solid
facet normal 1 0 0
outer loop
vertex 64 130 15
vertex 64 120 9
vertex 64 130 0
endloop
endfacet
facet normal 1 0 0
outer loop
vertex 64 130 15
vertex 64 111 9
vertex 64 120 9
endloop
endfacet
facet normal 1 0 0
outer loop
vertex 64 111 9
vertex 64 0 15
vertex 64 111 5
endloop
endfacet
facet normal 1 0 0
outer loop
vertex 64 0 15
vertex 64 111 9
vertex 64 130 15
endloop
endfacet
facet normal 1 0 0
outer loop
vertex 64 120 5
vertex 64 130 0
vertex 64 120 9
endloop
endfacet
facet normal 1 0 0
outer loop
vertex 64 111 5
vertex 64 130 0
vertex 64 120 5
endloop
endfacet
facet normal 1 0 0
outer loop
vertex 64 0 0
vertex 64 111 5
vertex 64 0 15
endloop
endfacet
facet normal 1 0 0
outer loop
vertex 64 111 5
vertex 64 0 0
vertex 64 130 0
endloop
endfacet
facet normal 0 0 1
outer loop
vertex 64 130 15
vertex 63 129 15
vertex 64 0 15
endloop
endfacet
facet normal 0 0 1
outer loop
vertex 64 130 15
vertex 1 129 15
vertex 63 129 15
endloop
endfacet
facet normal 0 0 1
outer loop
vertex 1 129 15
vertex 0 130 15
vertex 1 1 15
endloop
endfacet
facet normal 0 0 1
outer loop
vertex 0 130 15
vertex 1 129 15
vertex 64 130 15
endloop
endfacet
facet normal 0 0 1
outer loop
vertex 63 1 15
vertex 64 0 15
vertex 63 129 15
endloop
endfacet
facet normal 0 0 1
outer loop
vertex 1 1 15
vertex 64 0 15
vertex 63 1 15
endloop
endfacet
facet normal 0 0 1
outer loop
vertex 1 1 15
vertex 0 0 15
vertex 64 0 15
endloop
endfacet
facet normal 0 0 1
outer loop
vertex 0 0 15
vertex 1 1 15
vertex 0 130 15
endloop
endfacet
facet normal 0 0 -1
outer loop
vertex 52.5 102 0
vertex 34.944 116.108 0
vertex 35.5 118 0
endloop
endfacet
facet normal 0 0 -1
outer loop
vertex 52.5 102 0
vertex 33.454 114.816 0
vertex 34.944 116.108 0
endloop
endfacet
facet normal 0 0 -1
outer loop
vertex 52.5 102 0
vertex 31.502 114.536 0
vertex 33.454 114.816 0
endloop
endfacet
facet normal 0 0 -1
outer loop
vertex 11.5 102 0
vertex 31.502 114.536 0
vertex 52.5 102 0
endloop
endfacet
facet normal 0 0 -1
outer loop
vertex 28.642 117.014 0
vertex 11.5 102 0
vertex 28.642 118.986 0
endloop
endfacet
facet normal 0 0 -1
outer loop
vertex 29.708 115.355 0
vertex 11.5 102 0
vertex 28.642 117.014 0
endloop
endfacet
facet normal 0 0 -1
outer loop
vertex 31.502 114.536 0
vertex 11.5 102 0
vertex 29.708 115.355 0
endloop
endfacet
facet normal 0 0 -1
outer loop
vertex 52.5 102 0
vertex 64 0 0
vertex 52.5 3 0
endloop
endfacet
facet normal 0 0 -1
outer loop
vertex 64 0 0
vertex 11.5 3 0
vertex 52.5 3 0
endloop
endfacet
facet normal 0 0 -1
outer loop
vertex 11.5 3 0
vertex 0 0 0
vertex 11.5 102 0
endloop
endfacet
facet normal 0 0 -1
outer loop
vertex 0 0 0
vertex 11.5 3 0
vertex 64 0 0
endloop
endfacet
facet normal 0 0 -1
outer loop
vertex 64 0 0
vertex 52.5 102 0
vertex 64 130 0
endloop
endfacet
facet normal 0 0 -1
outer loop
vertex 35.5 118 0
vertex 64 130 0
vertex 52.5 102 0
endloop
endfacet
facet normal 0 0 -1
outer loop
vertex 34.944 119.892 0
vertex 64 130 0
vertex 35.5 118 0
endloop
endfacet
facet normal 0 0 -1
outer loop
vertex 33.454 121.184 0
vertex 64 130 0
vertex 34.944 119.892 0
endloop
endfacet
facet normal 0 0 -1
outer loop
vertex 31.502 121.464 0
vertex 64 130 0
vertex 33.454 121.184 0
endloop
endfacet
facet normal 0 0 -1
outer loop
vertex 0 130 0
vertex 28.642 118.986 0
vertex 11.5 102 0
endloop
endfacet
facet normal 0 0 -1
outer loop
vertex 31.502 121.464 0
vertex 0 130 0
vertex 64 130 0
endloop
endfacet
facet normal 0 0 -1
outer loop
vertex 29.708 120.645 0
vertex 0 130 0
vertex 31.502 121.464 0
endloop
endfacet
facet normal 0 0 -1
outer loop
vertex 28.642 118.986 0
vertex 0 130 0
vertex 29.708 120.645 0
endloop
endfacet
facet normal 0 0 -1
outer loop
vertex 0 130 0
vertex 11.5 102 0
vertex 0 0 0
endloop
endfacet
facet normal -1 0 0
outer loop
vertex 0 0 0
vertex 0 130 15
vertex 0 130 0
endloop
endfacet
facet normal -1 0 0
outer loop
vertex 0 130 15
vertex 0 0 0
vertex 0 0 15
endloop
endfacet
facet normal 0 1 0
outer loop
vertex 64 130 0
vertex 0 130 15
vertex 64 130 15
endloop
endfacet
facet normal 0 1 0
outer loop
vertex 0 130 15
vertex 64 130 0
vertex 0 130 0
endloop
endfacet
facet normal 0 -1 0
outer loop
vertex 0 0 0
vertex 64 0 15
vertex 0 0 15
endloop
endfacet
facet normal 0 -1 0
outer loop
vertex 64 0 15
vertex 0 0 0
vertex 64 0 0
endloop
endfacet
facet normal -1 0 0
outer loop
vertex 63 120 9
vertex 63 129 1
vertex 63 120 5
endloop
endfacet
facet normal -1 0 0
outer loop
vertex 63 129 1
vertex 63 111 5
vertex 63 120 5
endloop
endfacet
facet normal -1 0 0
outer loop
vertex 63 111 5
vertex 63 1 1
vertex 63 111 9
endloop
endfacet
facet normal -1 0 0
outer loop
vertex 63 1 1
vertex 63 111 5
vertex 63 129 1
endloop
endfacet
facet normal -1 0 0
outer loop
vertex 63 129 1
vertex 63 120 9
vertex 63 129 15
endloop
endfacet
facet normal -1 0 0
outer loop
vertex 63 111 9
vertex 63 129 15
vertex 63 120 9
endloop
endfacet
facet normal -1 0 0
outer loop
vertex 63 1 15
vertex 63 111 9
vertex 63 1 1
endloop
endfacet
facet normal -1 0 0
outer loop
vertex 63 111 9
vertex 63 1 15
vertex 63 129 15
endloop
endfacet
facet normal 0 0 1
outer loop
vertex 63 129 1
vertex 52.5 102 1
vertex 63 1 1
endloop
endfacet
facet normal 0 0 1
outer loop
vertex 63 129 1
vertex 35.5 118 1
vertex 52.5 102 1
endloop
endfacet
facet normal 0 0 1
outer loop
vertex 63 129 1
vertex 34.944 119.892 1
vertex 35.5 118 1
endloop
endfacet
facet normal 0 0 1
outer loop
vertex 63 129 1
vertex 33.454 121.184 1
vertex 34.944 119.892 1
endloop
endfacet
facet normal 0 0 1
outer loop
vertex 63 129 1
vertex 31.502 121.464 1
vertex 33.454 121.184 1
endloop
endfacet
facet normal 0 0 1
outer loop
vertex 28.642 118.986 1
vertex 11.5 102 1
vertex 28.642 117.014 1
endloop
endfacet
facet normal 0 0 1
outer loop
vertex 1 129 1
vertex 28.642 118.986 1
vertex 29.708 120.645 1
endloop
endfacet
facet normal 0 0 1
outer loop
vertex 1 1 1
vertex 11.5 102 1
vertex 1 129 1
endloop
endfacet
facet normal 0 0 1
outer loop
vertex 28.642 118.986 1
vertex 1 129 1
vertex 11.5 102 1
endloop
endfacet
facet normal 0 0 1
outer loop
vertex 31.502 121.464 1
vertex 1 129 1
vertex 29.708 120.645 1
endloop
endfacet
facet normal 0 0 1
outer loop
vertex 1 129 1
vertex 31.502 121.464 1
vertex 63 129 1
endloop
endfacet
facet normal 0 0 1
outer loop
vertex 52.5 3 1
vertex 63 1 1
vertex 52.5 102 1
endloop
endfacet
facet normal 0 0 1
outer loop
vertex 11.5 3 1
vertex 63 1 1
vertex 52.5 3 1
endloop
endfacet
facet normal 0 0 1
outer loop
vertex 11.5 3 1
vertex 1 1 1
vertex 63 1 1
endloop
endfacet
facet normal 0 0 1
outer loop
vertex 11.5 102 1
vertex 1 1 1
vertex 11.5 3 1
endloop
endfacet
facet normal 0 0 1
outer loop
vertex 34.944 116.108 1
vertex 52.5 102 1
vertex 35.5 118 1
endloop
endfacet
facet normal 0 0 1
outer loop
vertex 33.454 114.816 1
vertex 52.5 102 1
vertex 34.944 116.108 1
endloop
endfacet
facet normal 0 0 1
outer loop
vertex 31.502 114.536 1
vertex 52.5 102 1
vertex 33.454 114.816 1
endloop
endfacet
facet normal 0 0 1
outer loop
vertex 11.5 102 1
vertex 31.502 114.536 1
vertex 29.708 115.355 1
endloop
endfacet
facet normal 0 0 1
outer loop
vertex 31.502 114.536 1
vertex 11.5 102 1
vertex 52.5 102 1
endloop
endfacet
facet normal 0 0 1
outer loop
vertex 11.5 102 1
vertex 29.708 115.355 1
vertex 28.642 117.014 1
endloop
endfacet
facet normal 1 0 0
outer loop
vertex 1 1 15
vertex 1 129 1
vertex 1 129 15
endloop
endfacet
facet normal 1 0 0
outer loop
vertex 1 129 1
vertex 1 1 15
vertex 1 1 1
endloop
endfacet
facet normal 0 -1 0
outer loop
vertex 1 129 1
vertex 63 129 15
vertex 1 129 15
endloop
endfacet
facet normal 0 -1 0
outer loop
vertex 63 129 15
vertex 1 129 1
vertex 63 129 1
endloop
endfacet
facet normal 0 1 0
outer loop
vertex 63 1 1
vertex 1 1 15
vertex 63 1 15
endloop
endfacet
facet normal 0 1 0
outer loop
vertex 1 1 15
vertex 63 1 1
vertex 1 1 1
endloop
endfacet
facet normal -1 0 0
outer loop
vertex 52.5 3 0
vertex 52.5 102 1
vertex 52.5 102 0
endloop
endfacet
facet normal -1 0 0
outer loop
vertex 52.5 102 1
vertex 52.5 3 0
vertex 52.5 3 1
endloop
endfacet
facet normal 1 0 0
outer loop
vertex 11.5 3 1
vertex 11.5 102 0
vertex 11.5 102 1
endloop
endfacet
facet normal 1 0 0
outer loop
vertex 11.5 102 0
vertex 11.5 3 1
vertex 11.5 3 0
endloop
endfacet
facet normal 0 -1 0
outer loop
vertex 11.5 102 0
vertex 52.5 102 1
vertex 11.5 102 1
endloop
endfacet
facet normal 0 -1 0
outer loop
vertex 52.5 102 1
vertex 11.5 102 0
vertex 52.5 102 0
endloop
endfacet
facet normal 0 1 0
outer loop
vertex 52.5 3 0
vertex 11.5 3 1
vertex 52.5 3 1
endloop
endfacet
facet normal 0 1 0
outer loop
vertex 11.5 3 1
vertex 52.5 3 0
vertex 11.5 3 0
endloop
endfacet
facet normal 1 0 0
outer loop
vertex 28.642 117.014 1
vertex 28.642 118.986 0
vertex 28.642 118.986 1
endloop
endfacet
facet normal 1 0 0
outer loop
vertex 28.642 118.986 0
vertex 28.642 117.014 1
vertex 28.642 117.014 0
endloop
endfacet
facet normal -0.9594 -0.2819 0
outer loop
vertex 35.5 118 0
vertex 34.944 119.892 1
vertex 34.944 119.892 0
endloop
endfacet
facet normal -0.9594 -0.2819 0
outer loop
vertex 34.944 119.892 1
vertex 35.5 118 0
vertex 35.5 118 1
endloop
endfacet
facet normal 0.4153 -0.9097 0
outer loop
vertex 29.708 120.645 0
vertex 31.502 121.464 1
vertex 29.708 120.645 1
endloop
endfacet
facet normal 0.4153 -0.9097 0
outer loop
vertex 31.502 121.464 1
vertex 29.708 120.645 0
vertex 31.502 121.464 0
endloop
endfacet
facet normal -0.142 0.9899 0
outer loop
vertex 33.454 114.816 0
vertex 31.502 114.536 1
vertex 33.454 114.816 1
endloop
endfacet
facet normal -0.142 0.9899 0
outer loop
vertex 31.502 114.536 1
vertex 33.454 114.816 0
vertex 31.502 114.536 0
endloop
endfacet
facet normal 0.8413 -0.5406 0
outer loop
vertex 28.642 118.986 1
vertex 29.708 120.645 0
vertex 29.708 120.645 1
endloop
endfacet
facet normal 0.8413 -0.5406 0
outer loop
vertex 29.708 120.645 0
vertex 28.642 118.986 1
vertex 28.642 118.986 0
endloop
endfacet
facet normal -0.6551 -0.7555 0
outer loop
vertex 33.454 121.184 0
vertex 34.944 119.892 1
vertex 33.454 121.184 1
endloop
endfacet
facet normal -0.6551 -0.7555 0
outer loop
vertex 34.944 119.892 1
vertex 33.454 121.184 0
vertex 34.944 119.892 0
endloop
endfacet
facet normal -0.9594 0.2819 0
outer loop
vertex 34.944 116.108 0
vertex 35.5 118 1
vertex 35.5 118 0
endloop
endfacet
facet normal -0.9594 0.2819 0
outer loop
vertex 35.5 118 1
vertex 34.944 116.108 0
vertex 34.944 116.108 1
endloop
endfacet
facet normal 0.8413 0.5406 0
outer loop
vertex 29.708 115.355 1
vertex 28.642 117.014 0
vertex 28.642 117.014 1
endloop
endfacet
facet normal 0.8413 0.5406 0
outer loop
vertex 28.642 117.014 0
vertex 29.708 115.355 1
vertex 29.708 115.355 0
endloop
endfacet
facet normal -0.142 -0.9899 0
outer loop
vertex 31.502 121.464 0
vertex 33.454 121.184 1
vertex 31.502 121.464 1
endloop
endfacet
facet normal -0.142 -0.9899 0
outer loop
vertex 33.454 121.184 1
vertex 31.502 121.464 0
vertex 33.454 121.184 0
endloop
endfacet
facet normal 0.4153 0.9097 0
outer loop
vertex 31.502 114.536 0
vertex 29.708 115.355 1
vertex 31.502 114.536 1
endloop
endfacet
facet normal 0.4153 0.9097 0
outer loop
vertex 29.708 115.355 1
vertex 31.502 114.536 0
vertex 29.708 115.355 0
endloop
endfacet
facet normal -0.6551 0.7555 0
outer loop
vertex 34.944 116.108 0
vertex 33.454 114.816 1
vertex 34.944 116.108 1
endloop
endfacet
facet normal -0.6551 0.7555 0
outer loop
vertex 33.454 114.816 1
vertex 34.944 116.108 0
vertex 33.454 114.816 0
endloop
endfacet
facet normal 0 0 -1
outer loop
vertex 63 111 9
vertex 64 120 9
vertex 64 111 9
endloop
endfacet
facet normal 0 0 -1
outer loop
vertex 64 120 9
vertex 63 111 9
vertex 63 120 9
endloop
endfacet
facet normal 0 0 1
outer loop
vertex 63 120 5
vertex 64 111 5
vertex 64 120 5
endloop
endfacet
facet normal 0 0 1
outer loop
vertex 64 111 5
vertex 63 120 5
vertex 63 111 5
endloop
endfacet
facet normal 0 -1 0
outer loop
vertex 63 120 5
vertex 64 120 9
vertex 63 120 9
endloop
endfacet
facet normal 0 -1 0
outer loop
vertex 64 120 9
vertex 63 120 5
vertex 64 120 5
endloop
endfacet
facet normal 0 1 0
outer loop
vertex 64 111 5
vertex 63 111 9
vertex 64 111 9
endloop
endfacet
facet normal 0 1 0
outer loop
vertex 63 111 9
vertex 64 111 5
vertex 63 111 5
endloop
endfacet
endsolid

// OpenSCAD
 width = 64;
length = 130;
depth = 15;
wall = 1;
fitting = 0.001;

display_width = 41;
display_length = 99;
snug_fit = 0.3;
union(){
    difference(){
        // case
        cube([width, length, depth]);
        // case cutout
        translate([wall, wall,wall])
        cube([width-2*wall, length-2*wall, depth-wall+fitting]);    
        // display cutout
        translate([(width-display_width)/2,3,-fitting])
        cube([display_width, display_length, wall+2*fitting]);
        // button cutout
        translate([width/2,length - 12,0])
        cylinder(wall*2+fitting, 3.5, 3.5, true);
        // case cutout
        translate([width-wall-fitting, length - 9 - 10,depth-10])
        cube([wall+2*fitting,9,4]);
    }

    
    // lid
//    translate([width+20,0,0])
//    cube([width - 2*wall - snug_fit, length- 2*wall - snug_fit, wall]);
}
